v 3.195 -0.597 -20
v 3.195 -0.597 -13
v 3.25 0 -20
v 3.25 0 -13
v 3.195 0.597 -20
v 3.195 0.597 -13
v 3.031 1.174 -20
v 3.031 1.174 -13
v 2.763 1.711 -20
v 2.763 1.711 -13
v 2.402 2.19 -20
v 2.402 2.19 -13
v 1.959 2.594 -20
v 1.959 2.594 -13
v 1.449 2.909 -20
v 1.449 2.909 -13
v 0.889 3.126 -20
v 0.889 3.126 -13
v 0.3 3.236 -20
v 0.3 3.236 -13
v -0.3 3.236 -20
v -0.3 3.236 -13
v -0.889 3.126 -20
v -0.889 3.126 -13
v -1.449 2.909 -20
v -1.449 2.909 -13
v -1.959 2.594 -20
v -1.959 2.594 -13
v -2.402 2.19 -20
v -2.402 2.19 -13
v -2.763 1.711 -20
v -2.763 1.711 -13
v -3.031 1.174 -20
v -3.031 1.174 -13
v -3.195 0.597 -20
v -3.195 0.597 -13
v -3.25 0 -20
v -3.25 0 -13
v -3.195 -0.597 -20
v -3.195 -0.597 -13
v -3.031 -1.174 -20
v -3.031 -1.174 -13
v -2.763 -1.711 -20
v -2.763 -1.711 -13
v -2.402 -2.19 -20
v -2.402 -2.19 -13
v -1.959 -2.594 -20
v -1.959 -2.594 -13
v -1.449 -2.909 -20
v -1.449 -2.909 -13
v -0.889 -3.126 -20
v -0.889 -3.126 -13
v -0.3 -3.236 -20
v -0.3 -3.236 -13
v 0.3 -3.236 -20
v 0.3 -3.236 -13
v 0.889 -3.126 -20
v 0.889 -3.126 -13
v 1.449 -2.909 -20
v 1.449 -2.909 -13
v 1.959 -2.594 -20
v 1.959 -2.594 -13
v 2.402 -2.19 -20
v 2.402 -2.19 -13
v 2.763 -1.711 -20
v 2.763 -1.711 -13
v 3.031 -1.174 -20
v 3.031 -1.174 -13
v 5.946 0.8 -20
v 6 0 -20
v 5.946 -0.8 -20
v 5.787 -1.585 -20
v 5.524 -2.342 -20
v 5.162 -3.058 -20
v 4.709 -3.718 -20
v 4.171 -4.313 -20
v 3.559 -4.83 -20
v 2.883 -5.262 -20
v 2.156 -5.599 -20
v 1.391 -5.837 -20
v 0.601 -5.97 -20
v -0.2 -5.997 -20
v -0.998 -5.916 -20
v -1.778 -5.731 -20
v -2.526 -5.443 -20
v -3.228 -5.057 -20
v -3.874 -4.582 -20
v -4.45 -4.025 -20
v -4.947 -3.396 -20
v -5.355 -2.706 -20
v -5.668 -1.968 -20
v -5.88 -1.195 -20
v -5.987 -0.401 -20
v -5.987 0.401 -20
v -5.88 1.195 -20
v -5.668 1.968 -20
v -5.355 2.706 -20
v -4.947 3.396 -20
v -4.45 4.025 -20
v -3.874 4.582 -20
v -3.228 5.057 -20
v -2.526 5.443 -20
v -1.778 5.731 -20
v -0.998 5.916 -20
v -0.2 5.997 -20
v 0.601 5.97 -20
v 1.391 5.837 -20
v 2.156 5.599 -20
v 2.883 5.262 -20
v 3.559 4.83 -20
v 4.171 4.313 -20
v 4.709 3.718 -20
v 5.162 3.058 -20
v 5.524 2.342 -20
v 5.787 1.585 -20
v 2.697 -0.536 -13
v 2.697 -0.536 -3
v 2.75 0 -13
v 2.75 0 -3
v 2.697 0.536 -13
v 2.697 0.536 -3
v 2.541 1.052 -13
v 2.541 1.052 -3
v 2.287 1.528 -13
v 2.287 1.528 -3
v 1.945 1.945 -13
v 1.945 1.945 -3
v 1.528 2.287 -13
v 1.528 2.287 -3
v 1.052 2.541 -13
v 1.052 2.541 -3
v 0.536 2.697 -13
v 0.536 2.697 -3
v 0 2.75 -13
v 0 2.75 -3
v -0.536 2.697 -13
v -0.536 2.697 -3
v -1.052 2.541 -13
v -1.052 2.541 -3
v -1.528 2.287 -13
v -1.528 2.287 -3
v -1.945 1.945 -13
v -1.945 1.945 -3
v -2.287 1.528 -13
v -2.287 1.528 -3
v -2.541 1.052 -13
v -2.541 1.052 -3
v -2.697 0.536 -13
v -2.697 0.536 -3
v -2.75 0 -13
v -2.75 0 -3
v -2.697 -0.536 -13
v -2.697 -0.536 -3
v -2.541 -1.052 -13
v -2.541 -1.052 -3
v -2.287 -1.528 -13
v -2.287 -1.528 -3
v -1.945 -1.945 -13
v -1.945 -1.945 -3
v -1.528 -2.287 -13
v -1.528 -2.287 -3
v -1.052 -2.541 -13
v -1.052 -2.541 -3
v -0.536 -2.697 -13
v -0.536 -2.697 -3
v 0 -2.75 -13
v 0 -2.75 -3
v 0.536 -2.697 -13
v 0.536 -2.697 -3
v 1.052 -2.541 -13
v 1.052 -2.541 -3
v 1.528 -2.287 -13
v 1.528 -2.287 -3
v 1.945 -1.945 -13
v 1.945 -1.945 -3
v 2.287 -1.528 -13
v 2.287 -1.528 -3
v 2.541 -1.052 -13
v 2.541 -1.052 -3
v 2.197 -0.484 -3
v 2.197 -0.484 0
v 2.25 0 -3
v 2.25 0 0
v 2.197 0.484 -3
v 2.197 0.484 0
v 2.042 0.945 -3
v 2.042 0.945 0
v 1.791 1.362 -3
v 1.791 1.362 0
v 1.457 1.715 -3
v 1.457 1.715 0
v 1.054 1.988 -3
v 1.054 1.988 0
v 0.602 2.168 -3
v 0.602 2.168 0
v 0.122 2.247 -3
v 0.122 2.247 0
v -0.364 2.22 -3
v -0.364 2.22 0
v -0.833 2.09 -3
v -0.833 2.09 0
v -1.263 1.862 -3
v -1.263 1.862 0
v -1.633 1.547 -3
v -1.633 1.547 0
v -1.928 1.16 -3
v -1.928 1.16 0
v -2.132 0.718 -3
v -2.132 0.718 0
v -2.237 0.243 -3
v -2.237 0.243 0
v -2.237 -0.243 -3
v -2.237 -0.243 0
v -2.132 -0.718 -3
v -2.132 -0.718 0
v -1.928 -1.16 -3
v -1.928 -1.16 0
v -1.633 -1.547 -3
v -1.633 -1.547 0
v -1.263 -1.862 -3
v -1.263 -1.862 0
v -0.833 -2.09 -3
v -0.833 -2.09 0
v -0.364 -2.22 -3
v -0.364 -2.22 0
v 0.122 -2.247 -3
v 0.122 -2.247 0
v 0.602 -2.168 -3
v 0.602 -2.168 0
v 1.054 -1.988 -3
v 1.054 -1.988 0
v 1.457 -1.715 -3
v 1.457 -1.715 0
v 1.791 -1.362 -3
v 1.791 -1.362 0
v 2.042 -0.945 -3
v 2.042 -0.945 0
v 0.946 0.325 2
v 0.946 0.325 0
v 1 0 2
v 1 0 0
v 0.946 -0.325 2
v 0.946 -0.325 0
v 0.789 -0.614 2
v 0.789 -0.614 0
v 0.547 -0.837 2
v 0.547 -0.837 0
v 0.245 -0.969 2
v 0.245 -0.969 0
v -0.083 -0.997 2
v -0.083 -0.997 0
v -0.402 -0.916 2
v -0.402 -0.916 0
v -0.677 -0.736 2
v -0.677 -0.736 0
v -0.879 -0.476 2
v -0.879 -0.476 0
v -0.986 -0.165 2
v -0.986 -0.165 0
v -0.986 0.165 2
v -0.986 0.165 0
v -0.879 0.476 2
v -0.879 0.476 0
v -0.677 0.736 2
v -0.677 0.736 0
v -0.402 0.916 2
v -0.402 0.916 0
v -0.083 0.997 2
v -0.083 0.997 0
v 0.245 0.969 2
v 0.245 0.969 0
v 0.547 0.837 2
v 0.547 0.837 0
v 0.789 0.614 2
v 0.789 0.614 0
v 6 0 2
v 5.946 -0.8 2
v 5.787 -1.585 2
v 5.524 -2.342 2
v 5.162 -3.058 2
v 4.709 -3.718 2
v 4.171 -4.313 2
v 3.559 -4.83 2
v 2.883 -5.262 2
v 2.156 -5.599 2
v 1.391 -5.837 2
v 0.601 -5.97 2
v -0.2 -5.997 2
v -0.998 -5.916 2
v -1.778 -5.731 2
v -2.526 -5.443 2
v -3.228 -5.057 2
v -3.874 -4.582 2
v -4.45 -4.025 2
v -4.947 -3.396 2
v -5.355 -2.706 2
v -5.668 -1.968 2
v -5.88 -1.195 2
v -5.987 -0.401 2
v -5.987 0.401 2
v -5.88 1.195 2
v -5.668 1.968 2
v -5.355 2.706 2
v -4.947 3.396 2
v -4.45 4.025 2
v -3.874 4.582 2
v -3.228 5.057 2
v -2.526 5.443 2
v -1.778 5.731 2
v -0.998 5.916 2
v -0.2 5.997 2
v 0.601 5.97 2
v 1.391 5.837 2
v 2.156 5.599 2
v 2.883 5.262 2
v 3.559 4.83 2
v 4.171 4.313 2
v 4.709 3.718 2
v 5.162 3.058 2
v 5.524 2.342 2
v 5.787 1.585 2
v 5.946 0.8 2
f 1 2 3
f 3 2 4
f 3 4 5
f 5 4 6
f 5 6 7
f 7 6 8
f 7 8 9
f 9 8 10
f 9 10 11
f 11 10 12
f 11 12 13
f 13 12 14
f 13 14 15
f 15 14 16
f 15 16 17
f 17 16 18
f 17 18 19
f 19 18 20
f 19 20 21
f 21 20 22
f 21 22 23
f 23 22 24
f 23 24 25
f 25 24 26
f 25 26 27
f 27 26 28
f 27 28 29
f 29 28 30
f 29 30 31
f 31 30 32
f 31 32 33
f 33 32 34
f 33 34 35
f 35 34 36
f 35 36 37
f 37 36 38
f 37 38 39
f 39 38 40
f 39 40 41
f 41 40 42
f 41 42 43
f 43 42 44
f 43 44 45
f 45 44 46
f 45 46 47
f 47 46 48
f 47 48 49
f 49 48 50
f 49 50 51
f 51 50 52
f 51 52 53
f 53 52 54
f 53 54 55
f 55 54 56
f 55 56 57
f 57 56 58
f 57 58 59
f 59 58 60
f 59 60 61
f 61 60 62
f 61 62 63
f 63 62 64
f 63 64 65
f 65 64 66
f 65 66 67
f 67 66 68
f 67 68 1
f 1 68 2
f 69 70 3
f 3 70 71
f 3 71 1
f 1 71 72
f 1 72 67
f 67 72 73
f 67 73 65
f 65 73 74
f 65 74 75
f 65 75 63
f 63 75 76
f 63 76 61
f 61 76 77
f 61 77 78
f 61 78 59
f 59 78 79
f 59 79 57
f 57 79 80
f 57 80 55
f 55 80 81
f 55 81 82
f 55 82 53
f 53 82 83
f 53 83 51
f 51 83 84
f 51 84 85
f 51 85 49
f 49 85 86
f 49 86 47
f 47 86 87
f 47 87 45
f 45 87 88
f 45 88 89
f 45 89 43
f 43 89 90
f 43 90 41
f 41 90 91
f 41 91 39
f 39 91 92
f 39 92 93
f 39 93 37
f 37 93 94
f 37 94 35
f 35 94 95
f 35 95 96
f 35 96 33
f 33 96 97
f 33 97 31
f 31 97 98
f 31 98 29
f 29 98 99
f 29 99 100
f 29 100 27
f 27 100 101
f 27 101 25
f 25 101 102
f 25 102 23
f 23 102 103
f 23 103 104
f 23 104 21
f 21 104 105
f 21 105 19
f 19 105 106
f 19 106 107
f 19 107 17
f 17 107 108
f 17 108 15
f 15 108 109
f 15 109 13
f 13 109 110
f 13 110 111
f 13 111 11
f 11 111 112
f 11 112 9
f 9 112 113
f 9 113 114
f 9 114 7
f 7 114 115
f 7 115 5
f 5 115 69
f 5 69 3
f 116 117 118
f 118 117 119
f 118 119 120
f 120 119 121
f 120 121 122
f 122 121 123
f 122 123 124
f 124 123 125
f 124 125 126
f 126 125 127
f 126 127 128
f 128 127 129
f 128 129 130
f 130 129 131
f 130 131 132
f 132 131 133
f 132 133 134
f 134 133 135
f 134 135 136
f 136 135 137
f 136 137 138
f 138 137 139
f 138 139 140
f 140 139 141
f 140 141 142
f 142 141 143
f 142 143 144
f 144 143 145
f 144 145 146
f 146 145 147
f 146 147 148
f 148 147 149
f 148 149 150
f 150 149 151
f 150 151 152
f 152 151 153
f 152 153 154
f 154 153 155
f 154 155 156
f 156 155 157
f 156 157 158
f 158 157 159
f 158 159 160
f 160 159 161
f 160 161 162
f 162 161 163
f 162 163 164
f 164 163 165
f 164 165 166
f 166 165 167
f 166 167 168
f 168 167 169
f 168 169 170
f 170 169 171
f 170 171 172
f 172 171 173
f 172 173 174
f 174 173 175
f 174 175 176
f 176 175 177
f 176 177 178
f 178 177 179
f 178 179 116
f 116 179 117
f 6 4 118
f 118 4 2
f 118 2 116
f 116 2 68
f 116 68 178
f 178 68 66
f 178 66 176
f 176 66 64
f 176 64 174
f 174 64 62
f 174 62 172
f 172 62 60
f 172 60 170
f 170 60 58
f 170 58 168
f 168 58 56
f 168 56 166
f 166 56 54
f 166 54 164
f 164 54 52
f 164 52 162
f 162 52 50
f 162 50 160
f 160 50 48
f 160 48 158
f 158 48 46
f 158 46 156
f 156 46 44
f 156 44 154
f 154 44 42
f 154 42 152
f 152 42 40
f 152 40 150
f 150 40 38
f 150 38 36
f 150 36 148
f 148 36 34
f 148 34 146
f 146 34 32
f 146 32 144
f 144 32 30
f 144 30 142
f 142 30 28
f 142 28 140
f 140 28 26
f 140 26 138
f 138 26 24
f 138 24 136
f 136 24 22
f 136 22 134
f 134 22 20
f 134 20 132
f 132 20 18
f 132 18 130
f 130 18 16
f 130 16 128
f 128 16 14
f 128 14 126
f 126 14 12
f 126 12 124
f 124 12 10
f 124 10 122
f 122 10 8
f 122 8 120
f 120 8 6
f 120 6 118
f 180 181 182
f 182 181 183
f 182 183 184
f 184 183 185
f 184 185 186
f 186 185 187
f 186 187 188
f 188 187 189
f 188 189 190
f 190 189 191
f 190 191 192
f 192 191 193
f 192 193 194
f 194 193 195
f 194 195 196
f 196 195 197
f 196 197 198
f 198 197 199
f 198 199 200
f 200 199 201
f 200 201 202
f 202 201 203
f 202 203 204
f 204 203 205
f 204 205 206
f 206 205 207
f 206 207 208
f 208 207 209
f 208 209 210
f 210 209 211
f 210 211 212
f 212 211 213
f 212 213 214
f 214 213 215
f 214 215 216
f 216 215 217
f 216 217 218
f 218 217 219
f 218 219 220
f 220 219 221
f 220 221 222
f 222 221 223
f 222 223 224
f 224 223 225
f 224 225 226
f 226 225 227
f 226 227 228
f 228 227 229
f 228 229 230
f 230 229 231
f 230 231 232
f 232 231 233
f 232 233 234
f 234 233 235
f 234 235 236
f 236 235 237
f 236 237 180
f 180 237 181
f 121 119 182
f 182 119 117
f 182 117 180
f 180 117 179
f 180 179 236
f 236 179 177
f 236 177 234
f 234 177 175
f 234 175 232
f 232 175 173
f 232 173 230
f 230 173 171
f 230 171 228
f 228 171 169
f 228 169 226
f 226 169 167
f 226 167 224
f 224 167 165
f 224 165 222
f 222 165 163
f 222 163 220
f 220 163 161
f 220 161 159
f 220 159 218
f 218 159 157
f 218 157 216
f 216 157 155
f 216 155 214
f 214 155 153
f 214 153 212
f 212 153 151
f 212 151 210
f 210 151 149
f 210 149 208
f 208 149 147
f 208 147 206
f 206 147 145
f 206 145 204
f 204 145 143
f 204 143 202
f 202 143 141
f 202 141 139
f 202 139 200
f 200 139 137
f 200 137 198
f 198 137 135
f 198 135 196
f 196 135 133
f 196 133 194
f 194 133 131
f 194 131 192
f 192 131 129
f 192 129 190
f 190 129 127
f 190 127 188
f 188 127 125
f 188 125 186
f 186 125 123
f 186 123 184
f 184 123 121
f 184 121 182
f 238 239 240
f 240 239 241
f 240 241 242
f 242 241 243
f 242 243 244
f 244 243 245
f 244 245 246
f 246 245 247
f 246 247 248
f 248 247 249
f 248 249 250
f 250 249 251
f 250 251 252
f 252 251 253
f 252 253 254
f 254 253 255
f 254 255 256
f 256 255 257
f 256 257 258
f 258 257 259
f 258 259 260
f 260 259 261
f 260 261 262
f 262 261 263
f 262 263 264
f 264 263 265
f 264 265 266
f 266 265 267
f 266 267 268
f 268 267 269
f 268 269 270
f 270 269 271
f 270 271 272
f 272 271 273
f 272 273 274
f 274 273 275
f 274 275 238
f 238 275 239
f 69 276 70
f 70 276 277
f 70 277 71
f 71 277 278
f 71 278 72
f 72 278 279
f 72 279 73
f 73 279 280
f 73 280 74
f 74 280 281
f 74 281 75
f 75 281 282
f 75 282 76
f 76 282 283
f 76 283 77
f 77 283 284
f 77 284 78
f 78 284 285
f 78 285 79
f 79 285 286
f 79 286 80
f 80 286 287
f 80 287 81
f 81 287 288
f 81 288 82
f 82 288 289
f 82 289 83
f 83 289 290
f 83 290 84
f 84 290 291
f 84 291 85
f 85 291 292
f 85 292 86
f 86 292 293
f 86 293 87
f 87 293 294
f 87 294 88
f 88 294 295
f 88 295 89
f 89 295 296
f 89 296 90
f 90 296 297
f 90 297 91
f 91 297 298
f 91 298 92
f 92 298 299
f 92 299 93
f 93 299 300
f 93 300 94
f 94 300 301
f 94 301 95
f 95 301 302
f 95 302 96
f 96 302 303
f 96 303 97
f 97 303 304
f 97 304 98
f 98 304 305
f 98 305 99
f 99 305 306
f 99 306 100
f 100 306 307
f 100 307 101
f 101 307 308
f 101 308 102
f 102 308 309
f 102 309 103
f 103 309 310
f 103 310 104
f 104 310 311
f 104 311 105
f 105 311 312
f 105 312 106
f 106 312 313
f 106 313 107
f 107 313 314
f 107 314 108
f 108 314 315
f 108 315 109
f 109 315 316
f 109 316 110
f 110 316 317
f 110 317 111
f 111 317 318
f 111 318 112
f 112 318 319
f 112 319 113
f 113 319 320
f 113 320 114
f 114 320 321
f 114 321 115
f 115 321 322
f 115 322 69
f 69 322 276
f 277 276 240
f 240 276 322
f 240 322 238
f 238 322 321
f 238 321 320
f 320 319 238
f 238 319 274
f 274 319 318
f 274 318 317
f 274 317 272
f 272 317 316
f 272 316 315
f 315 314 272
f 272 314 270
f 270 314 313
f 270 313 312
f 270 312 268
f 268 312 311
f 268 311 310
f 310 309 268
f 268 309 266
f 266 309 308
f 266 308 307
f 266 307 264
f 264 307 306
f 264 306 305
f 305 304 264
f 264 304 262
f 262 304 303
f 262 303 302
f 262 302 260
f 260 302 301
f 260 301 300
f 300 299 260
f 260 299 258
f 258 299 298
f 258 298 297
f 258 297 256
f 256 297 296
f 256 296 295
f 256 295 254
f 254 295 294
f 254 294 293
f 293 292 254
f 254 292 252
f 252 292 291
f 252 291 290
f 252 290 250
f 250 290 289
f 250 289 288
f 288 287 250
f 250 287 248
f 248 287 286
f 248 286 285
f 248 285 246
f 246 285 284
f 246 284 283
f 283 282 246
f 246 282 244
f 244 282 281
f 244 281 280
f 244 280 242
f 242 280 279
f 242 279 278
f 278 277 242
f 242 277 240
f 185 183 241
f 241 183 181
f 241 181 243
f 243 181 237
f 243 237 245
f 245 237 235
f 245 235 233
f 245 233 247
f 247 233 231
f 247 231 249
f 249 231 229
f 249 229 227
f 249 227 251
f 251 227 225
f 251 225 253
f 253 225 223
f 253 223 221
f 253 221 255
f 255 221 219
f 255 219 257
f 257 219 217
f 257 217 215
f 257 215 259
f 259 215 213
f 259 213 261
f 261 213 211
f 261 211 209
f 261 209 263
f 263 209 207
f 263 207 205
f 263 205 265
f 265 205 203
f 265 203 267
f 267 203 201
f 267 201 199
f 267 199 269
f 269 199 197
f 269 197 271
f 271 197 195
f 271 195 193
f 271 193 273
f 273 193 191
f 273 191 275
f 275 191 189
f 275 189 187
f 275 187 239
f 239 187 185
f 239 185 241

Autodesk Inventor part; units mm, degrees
ref_plane "YZ Plane" through (0, 0, 0) normal (1, 0, 0) x (0, 1, 0)
ref_plane "XZ Plane" through (0, 0, 0) normal (0, 1, 0) x (-1, 0, 0)
ref_plane "XY Plane" through (0, 0, 0) normal (0, 0, 1) x (1, 0, 0)
sketch "Sketch1" plane through (0, 0, 0) normal (0, 0, 1) x (1, 0, 0)
  circle A0 centre (0, 0) radius 2.75
  circle A1 centre (0, 0) radius 6
  circle A2 centre (0, 0) radius 1
  circle A3 centre (0, 0) radius 2.25
  circle A4 centre (0, 0) radius 3.25
  dimension "d0" = 5.5
  dimension "d1" = 12
  dimension "d2" = 2
  dimension "d5" = 4.5
  dimension "d6" = 6.5
extrude "Extrusion1" add sketch "Sketch1" along normal blind 2 contours A0 | A1 | A3 | A4
extrude "Extrusion2" add sketch "Sketch1" against normal blind 3 contours A0 | A1 | A4
extrude "Extrusion3" add sketch "Sketch1" against normal blind 13 contours A1 | A4
extrude "Extrusion4" add sketch "Sketch1" against normal blind 20 contours A1
properties part number "detector holder"
